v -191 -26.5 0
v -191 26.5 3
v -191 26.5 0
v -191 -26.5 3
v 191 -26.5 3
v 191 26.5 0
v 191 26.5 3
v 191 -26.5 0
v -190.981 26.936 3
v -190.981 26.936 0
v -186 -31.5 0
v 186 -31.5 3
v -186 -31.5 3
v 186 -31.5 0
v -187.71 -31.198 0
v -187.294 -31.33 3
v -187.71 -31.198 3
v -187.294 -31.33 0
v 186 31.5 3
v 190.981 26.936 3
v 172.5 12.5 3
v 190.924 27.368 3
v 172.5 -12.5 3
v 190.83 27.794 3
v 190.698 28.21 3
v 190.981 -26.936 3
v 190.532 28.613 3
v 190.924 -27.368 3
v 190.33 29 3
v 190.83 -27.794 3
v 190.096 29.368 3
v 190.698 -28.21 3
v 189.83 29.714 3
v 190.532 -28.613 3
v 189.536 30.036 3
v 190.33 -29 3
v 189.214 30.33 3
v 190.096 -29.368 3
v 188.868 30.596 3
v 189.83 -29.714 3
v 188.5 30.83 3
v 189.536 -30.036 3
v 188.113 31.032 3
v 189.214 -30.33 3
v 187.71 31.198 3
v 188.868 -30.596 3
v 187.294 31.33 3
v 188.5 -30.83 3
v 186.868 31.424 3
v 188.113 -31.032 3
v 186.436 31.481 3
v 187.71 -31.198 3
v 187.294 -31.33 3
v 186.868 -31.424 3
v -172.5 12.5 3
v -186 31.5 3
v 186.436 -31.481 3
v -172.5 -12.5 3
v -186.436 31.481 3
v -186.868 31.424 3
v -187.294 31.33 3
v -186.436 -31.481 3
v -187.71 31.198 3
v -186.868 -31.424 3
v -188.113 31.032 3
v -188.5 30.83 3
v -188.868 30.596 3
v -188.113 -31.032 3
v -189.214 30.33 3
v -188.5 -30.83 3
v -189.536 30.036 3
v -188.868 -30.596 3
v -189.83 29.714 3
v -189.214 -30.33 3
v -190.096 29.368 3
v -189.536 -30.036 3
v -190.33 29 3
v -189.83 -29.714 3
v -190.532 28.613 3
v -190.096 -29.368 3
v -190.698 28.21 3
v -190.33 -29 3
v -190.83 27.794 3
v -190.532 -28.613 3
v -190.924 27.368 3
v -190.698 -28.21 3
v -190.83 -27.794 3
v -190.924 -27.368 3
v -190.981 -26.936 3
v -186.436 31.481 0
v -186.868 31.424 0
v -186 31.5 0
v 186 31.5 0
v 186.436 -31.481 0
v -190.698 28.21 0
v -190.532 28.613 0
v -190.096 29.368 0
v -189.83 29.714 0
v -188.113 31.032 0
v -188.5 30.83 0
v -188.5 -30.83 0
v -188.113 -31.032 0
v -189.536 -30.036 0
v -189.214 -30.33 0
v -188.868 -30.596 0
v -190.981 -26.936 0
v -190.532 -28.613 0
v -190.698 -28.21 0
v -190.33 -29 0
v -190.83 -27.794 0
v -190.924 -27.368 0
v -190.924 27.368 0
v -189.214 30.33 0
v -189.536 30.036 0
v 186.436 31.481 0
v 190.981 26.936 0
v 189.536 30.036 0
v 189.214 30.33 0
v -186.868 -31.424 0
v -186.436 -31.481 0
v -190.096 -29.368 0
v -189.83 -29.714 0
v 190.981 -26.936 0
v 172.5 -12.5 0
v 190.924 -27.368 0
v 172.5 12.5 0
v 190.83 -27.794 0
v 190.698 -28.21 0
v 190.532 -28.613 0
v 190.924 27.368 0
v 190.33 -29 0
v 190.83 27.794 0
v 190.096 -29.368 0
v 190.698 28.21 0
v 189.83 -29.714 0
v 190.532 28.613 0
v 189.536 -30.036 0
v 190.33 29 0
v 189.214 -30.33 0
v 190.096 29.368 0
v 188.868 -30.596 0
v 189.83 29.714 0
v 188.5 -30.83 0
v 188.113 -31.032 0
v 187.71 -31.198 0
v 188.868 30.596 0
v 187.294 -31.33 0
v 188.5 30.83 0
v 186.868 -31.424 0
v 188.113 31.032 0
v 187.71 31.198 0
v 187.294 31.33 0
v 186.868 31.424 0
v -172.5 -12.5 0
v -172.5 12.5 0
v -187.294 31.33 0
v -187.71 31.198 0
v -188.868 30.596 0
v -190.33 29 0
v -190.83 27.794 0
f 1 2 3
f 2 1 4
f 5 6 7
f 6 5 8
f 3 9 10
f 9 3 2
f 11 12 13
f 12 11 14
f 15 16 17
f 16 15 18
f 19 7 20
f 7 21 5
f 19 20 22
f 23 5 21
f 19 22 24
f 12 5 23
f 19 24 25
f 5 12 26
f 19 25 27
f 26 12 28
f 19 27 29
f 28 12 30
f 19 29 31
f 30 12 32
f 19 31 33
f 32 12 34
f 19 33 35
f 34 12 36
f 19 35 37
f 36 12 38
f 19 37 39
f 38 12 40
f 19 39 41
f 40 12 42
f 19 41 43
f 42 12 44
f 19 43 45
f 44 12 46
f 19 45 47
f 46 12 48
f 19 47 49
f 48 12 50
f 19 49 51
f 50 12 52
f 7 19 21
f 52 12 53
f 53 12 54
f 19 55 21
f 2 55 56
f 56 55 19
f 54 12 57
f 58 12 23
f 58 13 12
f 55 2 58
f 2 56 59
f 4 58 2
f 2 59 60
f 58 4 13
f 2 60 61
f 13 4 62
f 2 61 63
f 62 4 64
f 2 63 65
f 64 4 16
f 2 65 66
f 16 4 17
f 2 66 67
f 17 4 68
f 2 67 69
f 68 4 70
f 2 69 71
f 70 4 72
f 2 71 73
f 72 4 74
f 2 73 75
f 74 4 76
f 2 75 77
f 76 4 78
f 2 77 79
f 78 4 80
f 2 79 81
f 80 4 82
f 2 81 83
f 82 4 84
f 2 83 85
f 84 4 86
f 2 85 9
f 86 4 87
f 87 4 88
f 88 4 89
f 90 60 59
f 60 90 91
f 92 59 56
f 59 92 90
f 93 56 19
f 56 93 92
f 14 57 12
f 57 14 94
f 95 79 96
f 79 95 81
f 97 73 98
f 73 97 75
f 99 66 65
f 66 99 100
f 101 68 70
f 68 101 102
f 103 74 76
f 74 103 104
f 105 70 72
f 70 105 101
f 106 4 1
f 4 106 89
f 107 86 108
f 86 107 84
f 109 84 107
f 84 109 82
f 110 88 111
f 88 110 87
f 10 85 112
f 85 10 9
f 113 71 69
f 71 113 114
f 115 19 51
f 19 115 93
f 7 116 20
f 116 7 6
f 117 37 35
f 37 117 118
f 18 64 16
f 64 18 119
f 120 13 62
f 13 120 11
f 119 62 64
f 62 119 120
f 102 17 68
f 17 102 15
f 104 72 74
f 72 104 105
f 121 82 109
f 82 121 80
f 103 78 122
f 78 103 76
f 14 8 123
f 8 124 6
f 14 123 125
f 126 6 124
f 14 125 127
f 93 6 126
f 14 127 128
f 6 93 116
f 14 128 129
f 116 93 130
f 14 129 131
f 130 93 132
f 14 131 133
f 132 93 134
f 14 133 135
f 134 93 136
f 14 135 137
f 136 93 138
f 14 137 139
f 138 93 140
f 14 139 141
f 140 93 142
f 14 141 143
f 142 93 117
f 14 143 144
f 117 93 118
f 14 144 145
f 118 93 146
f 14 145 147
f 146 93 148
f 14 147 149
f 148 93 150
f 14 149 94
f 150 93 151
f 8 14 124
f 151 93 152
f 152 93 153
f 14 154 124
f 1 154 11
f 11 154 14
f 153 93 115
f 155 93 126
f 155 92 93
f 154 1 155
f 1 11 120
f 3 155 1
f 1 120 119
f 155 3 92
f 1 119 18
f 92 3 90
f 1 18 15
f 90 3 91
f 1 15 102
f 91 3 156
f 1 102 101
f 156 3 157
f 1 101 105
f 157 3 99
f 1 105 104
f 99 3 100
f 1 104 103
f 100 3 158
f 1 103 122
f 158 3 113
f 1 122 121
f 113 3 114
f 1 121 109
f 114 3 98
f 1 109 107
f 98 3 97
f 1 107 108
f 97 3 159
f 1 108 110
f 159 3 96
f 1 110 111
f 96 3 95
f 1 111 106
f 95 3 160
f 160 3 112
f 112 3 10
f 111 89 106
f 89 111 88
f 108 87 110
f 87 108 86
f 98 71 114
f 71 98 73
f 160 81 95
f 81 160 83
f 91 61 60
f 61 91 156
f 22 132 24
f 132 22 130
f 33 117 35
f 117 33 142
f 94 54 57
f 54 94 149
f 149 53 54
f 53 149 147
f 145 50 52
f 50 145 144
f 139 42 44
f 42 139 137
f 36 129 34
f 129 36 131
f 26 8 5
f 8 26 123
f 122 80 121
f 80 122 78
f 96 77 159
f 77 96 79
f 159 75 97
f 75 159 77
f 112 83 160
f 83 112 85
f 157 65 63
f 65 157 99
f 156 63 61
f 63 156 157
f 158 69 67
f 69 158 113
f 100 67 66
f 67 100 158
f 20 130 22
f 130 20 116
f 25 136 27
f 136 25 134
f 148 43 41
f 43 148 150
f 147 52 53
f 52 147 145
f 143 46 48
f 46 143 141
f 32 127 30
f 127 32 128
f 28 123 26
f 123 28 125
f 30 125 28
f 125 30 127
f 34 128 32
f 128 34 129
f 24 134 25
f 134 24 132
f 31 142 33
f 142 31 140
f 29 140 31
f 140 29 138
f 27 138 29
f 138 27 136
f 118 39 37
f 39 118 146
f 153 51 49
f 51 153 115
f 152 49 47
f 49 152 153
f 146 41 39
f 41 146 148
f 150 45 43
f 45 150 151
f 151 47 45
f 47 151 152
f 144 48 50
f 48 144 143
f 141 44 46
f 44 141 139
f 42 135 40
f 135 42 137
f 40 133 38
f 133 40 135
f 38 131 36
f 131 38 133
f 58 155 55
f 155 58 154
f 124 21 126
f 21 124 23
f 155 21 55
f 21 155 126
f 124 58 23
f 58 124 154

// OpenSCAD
$fa=5; $fs=0.1;

R=5;
H=3;
Llamp=342;
Wlamp=23;
Lhole=345;
Whole=25;

difference(){
	union(){
        hull(){
            //пластина
            translate([-Llamp/2 - 20 + R, -Wlamp/2 - 20 + R, H/2]) cylinder(r=R, h=H, center=true);
            translate([-Llamp/2 - 20 + R, Wlamp/2 + 20 - R, H/2]) cylinder(r=R, h=H, center=true);
            translate([Llamp/2 + 20 - R, -Wlamp/2 - 20 + R, H/2]) cylinder(r=R, h=H, center=true);
            translate([Llamp/2 + 20 - R, Wlamp/2 + 20 - R, H/2]) cylinder(r=R, h=H, center=true);
        }    
        
	}

	union(){
        //вырез под лампу
        translate([0,0, H/2]) cube([Lhole, Whole, H], center=true);
	}
}
